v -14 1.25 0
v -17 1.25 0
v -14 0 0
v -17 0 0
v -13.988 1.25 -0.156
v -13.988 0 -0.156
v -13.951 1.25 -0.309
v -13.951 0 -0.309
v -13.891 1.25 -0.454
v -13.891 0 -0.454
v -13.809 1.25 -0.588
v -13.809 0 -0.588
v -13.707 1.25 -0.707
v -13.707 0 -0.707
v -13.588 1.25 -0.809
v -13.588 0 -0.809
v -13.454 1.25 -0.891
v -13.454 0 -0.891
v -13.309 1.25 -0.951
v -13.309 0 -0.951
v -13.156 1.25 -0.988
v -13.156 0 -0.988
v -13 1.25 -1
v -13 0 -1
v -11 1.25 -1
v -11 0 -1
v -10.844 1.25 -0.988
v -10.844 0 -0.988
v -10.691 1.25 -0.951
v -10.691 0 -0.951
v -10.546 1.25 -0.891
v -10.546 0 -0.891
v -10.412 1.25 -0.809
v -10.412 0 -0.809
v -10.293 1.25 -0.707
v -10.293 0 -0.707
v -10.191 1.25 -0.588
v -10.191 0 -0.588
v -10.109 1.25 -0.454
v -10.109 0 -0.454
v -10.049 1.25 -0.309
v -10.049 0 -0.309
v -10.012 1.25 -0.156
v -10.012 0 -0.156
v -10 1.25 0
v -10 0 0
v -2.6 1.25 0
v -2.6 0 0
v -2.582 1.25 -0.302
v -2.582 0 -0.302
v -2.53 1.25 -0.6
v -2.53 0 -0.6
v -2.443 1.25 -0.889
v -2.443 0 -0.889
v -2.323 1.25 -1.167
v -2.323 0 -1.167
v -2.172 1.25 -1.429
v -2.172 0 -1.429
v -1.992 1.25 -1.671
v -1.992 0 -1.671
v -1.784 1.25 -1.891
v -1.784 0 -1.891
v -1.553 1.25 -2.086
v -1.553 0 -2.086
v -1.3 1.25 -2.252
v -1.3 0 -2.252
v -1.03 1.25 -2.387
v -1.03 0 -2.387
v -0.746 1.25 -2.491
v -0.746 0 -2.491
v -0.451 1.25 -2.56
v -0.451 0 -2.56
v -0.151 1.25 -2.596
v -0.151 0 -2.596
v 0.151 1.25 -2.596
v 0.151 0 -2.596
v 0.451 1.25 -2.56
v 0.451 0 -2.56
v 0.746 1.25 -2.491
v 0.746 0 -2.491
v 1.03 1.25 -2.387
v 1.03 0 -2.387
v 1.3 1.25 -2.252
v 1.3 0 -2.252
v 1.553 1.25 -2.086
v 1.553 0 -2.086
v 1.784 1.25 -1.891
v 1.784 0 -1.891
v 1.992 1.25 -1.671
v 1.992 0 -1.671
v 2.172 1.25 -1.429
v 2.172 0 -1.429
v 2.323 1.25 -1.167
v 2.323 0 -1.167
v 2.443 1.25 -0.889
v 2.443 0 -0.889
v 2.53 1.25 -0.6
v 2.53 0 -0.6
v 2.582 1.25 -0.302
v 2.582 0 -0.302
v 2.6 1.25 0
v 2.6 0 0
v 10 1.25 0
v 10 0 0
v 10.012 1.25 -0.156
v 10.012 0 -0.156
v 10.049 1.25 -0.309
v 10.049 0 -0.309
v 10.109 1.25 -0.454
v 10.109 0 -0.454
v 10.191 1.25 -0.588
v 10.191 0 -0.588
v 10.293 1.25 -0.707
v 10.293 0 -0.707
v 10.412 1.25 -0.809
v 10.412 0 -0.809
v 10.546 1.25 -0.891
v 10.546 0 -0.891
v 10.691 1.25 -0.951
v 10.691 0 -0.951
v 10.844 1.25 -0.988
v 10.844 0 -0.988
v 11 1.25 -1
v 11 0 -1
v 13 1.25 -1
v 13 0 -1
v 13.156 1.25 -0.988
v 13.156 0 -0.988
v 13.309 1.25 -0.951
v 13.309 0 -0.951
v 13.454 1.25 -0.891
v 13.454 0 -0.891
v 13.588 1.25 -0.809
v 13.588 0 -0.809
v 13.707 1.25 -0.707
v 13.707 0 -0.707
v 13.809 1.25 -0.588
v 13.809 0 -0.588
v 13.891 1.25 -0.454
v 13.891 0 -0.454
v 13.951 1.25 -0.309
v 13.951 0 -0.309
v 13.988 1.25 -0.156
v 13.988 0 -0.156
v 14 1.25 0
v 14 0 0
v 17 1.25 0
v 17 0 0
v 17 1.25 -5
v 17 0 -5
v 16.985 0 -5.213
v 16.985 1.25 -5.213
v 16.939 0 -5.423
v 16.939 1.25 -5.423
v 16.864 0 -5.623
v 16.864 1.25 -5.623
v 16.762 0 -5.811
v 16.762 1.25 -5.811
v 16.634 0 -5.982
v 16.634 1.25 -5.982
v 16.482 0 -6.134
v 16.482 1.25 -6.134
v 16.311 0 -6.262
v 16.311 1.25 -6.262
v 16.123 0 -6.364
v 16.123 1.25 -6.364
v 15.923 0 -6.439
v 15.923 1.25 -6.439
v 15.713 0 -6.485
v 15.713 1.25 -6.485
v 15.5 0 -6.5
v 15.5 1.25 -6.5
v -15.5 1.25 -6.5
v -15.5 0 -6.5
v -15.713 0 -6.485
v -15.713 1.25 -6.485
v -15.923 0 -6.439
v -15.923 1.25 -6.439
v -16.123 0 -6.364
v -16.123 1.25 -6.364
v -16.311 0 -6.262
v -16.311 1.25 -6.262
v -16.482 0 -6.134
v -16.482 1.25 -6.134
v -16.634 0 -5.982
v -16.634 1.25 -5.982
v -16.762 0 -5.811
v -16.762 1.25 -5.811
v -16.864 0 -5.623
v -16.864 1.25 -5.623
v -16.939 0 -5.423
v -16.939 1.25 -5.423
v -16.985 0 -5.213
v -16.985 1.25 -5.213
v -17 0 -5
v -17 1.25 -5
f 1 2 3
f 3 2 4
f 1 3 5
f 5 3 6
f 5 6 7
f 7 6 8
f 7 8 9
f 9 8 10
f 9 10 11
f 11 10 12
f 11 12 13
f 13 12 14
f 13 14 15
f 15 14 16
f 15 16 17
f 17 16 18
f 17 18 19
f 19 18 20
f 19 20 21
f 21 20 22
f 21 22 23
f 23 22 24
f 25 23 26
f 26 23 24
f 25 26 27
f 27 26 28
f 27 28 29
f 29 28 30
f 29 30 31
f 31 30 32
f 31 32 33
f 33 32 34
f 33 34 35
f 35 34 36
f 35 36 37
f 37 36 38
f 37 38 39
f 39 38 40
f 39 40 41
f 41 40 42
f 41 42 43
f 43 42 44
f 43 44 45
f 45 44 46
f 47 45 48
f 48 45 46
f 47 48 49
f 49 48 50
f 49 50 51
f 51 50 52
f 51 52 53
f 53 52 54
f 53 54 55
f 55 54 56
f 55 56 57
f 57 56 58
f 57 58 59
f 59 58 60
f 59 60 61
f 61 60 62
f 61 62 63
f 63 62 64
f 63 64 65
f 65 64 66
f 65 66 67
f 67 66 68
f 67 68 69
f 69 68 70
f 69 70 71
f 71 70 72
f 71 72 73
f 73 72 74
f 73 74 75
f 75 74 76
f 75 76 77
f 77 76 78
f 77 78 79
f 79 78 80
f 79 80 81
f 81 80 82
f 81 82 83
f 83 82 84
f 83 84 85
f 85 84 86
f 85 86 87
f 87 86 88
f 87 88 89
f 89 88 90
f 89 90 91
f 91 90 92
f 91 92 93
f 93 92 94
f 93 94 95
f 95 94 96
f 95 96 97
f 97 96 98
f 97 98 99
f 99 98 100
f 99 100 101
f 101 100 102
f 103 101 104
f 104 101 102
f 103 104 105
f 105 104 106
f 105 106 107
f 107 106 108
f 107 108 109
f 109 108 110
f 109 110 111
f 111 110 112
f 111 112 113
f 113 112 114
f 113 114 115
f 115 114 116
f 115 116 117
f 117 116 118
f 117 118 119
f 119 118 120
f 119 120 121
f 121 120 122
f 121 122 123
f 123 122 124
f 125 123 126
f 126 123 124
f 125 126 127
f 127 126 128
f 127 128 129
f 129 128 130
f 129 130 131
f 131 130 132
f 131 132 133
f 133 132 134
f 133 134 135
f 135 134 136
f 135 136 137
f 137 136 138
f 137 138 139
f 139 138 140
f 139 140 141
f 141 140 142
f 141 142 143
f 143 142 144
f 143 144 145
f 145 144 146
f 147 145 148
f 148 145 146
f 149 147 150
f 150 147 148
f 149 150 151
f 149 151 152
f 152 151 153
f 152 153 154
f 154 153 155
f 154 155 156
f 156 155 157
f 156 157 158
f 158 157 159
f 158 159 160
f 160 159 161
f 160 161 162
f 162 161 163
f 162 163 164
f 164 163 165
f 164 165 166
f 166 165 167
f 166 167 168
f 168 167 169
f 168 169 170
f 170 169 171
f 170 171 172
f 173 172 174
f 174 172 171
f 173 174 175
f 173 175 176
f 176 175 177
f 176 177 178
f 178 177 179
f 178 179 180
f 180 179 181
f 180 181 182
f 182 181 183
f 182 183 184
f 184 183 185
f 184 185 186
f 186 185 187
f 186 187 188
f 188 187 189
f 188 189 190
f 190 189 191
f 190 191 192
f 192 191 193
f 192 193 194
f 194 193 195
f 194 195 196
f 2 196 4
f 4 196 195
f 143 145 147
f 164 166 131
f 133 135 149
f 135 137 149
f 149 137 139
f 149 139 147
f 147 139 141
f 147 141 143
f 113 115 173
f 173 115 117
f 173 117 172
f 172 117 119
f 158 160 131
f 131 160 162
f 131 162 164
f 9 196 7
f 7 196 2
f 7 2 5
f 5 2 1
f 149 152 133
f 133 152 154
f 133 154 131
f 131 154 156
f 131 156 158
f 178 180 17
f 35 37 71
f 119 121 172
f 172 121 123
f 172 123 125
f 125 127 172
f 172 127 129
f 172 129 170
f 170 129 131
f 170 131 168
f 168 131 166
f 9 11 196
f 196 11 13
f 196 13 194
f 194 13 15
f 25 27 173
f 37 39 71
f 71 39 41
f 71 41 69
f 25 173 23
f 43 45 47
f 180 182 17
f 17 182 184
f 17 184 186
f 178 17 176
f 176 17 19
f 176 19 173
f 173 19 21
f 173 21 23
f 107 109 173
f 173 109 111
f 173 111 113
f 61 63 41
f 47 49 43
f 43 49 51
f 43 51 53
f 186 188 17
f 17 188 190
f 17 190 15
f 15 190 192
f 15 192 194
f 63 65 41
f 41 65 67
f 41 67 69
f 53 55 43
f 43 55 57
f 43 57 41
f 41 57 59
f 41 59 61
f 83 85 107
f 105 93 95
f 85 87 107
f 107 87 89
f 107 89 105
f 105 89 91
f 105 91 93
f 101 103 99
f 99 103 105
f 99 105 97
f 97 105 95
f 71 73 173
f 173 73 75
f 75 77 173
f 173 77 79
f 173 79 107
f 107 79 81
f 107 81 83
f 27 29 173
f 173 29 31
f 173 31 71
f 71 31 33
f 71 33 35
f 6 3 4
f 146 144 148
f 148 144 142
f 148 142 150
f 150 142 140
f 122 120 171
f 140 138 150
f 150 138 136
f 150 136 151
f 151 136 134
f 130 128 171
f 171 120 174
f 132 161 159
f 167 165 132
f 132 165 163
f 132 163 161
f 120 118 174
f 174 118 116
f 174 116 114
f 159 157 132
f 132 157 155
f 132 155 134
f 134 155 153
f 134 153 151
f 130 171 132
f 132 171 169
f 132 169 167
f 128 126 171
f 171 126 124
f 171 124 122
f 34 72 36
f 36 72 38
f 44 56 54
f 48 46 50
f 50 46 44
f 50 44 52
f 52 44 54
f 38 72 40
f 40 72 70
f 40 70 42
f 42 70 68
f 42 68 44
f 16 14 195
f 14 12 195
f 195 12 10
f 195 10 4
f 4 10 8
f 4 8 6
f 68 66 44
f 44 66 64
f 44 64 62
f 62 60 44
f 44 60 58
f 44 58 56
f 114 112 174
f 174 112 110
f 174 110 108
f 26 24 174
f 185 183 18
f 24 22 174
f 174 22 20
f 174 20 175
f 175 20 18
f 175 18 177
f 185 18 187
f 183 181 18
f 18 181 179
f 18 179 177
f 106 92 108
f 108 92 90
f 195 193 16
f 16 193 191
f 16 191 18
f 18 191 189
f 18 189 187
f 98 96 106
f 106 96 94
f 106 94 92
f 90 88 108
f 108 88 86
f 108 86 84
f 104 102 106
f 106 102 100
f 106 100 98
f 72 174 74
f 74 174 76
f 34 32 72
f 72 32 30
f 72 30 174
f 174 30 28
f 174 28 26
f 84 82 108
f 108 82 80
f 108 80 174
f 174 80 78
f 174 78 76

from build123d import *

# Parameters (mm, degrees)
EXTRUDE_1_DEPTH = 1.25


with BuildPart() as part:
    # 草图2 → 凸台-拉伸1 (new body)
    with BuildSketch(Plane(origin=(0, 0, 0), x_dir=(1, 0, 0), z_dir=(0, 1, 0))):
        with BuildLine():
            Line((-15.5, 6.5), (15.5, 6.5))
            ThreePointArc((15.5, 6.5), (16.560660172, 6.060660172), (17, 5))
            Line((17, 5), (17, 0))
            Line((17, 0), (14, 0))
            ThreePointArc((14, 0), (13.707106781, 0.707106781), (13, 1))
            Line((13, 1), (11, 1))
            ThreePointArc((11, 1), (10.292893219, 0.707106781), (10, 0))
            Line((10, 0), (2.6, 0))
            ThreePointArc((2.6, 0), (0, 2.6), (-2.6, 0))
            Line((-2.6, 0), (-10, 0))
            ThreePointArc((-10, 0), (-10.292893219, 0.707106781), (-11, 1))
            Line((-11, 1), (-13, 1))
            ThreePointArc((-13, 1), (-13.707106781, 0.707106781), (-14, 0))
            Line((-14, 0), (-17, 0))
            Line((-17, 0), (-17, 5))
            ThreePointArc((-17, 5), (-16.560660172, 6.060660172), (-15.5, 6.5))
        make_face()
    extrude(amount=EXTRUDE_1_DEPTH)


solid = part.part
